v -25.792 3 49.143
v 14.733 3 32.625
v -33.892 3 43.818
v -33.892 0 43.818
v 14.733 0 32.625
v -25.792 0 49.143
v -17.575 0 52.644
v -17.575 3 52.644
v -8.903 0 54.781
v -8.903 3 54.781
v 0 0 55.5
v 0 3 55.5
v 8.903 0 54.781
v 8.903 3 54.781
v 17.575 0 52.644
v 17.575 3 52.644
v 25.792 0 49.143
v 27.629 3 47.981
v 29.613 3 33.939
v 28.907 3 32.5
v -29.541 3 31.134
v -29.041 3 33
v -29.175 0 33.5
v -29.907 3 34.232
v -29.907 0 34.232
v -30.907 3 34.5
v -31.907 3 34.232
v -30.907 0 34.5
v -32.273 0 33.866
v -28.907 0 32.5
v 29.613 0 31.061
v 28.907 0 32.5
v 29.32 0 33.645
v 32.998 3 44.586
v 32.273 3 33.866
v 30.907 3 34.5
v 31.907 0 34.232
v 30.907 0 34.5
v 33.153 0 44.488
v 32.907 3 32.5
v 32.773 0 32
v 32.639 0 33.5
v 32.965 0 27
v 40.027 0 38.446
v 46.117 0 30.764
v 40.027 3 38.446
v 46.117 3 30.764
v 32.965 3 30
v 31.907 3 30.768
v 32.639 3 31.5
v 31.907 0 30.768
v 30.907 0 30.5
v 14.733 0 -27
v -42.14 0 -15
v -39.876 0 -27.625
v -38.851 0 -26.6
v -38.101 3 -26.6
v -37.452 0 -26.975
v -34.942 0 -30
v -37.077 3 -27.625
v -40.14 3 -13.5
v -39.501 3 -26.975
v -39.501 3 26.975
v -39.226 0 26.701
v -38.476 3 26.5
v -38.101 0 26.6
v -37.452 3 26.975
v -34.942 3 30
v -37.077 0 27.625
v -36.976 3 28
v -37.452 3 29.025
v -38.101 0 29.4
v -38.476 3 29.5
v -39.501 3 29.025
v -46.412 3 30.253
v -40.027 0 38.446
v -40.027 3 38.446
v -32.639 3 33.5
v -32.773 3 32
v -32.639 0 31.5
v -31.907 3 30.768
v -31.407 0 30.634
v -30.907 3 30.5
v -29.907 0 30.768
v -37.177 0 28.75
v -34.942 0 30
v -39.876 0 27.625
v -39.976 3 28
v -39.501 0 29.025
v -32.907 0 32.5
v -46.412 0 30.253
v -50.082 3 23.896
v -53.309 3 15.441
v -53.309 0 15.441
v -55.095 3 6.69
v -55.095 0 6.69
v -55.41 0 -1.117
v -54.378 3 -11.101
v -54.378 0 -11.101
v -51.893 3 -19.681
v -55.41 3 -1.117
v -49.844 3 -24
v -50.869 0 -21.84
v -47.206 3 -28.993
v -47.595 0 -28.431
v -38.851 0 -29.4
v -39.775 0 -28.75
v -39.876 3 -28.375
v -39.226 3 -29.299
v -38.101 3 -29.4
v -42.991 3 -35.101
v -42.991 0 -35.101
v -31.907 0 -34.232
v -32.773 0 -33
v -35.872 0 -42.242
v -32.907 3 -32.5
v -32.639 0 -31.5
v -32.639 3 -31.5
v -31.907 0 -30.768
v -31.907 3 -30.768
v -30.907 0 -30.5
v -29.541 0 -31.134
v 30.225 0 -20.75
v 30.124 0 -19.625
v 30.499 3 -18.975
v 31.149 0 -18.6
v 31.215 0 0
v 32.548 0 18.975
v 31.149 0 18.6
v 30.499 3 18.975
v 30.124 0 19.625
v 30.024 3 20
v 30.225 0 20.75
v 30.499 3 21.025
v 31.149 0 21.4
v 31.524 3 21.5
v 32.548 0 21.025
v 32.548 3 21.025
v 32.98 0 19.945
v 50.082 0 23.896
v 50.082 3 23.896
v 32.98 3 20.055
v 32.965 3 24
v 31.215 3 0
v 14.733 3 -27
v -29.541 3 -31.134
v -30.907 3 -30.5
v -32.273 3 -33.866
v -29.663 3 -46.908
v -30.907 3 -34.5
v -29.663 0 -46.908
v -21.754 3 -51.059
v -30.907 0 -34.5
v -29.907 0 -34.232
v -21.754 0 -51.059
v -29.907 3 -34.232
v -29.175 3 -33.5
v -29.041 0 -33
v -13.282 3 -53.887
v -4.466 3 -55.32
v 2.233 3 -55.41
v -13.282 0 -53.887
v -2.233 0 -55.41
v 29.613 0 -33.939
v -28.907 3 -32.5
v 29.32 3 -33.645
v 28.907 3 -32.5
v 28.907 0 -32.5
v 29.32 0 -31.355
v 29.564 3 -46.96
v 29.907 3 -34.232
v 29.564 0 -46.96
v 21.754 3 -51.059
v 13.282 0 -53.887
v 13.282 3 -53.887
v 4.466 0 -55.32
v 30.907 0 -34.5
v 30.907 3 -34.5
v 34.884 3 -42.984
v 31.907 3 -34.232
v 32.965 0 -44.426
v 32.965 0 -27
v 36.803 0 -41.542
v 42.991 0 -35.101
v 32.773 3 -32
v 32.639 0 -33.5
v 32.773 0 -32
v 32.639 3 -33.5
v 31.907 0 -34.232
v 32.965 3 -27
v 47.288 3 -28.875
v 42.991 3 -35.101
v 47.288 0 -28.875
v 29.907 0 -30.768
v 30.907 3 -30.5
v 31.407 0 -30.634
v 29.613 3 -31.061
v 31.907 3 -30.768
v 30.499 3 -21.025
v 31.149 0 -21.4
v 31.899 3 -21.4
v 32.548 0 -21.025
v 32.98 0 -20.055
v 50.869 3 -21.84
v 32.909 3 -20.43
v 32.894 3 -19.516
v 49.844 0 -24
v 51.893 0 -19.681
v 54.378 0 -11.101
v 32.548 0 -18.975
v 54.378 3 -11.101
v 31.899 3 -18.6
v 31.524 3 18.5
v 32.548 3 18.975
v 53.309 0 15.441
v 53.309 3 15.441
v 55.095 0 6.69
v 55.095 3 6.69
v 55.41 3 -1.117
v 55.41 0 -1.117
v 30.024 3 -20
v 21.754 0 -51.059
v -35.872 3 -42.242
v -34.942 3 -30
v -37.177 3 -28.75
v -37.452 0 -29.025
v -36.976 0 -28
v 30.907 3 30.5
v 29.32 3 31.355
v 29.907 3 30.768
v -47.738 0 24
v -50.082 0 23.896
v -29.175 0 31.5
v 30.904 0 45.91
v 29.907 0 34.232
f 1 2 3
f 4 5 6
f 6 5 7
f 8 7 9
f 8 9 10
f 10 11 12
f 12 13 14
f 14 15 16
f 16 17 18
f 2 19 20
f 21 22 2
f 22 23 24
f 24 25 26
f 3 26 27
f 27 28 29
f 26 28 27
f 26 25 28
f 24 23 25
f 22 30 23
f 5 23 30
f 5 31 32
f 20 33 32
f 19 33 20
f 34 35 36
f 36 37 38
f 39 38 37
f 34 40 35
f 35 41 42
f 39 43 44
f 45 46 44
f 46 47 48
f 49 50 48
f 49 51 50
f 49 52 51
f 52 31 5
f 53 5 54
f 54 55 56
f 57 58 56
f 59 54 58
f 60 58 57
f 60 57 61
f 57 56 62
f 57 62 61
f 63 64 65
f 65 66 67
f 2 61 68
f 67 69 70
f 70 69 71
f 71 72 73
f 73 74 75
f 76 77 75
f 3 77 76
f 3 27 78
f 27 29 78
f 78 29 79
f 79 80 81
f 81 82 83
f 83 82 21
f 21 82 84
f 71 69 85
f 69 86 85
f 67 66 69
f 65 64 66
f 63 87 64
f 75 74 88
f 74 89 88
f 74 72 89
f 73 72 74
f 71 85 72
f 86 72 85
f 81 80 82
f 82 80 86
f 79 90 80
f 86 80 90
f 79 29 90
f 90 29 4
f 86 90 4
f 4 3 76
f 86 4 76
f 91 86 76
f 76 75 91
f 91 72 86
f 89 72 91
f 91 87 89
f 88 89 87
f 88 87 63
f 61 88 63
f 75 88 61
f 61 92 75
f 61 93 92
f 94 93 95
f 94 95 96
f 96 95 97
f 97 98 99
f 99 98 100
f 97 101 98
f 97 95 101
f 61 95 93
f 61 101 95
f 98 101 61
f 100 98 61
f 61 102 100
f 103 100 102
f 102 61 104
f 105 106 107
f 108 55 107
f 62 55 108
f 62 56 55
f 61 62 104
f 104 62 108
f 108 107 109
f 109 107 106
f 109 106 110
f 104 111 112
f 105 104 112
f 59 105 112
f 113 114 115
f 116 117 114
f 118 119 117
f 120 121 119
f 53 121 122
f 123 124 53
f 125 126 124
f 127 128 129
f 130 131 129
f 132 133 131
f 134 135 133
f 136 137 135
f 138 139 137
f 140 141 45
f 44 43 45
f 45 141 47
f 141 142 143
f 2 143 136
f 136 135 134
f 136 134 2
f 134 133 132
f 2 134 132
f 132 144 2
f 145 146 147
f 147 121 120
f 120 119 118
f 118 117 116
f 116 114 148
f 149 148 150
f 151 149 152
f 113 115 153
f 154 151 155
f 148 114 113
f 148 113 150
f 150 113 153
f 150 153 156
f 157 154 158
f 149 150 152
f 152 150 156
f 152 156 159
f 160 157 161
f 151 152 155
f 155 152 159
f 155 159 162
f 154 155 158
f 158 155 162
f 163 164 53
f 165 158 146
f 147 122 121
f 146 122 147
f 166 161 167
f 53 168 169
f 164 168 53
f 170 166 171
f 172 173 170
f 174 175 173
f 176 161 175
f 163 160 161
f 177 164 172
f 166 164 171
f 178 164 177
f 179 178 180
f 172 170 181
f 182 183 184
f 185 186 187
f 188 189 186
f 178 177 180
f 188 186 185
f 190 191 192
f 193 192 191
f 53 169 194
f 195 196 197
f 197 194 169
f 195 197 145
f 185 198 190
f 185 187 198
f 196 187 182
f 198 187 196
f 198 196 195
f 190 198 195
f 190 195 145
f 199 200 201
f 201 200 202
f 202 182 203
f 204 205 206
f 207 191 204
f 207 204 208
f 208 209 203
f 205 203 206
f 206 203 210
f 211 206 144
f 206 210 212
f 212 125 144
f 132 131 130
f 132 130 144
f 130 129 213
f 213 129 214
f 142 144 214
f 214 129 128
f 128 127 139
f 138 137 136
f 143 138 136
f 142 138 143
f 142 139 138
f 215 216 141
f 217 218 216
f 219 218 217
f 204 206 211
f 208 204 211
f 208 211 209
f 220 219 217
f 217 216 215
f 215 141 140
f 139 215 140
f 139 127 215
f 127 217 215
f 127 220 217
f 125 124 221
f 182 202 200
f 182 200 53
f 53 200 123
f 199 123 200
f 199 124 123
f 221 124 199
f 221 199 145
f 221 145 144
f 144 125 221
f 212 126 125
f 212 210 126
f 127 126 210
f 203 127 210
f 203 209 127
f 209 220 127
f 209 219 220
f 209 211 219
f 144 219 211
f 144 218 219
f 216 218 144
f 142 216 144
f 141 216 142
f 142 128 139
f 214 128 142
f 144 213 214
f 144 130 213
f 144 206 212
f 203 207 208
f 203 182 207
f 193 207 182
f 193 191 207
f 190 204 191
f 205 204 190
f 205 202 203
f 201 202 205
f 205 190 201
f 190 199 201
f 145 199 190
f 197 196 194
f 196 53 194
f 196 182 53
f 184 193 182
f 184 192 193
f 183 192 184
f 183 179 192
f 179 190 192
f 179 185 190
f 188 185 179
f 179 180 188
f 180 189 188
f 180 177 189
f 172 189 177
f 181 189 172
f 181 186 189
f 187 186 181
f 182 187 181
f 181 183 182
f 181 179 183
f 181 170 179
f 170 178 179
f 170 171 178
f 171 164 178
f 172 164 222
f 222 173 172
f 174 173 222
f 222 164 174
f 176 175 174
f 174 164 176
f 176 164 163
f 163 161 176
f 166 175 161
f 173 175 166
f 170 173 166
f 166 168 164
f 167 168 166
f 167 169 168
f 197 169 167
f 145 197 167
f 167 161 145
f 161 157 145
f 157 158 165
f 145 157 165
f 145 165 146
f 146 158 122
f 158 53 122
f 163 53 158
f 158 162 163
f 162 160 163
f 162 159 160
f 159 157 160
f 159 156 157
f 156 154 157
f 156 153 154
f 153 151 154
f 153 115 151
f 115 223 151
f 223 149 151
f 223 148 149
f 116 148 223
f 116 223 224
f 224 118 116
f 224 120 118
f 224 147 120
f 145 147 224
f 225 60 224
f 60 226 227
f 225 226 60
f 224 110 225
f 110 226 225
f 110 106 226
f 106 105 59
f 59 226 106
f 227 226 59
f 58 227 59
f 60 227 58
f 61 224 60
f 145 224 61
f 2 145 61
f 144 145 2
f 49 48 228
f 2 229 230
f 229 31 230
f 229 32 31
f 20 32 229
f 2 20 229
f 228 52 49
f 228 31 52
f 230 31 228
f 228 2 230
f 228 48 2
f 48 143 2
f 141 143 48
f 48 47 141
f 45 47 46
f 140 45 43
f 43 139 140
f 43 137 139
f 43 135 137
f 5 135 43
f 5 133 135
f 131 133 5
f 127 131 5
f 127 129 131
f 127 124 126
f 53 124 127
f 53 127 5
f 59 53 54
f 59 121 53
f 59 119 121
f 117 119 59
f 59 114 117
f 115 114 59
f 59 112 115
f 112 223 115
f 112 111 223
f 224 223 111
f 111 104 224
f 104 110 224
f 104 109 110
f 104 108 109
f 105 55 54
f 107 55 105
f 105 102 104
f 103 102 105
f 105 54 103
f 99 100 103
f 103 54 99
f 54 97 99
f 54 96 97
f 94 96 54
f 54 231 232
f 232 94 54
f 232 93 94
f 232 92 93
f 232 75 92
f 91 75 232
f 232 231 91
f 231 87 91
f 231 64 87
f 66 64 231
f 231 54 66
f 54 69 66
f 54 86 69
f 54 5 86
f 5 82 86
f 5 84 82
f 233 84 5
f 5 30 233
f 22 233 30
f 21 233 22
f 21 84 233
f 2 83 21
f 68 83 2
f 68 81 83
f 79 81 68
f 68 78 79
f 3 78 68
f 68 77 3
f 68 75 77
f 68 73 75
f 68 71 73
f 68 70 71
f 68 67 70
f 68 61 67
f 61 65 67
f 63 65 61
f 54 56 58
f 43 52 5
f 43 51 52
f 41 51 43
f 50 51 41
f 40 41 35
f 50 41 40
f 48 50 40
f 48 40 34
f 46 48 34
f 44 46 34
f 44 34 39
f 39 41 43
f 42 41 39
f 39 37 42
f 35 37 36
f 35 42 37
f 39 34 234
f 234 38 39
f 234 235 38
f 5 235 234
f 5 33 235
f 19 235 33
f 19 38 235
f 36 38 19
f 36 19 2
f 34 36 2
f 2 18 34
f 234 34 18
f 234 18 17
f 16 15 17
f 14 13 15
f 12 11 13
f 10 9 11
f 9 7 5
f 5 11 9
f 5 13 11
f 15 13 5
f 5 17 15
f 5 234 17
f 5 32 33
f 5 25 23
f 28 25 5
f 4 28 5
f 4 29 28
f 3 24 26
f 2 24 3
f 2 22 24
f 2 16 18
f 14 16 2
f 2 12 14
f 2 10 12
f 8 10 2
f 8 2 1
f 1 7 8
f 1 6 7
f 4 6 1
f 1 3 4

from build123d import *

# Parameters (mm, degrees)
SKETCH7_R                              = 55.5
BOSS_EXTRUDE1_DEPTH                    = 3
F_3_0MM_TRANSITIONAL_DOWEL_HOLE1_D     = 3
F_3_0MM_TRANSITIONAL_DOWEL_HOLE1_DEPTH = 25.4
F_3_0MM_TRANSITIONAL_DOWEL_HOLE1_TIP   = 0.901290929
F_4_0MM_DOWEL_HOLE1_D                  = 4
F_4_0MM_DOWEL_HOLE1_DEPTH              = 25.4
F_4_0MM_DOWEL_HOLE1_TIP                = 1.201721238


with BuildPart() as part:
    # Sketch7 → Boss-Extrude1 (new body)
    with BuildSketch(Plane(origin=(0, 0, 0), x_dir=(1, 0, 0), z_dir=(0, 1, 0))):
        with Locations(Location((0, 0, 0), (0, 0, 270))):
            Circle(SKETCH7_R)
    extrude(amount=BOSS_EXTRUDE1_DEPTH)

    # Ø3.0mm Transitional Dowel Hole1
    with Locations(Plane(origin=(0, 3, 0), x_dir=(1, 0, 0), z_dir=(0, 1, 0))):
        with Locations((-38.476262074, 27.999994228), (31.523738554, 19.999999725), (31.523741695, -20.000000275), (-38.476257677, -28.000005772)):
            Hole(F_3_0MM_TRANSITIONAL_DOWEL_HOLE1_D / 2, depth=F_3_0MM_TRANSITIONAL_DOWEL_HOLE1_DEPTH)
            with Locations((0, 0, -(F_3_0MM_TRANSITIONAL_DOWEL_HOLE1_DEPTH + F_3_0MM_TRANSITIONAL_DOWEL_HOLE1_TIP / 2))):  # 118° drill point
                Cone(0, F_3_0MM_TRANSITIONAL_DOWEL_HOLE1_D / 2, F_3_0MM_TRANSITIONAL_DOWEL_HOLE1_TIP, mode=Mode.SUBTRACT)

    # Ø4.0mm Dowel Hole1
    with Locations(Plane(origin=(0, 3, 0), x_dir=(1, 0, 0), z_dir=(0, 1, 0))):
        with Locations((-30.906824904, 32.5), (30.906824904, 32.5), (30.906824904, -32.5), (-30.906824904, -32.5)):
            Hole(F_4_0MM_DOWEL_HOLE1_D / 2, depth=F_4_0MM_DOWEL_HOLE1_DEPTH)
            with Locations((0, 0, -(F_4_0MM_DOWEL_HOLE1_DEPTH + F_4_0MM_DOWEL_HOLE1_TIP / 2))):  # 118° drill point
                Cone(0, F_4_0MM_DOWEL_HOLE1_D / 2, F_4_0MM_DOWEL_HOLE1_TIP, mode=Mode.SUBTRACT)


solid = part.part
